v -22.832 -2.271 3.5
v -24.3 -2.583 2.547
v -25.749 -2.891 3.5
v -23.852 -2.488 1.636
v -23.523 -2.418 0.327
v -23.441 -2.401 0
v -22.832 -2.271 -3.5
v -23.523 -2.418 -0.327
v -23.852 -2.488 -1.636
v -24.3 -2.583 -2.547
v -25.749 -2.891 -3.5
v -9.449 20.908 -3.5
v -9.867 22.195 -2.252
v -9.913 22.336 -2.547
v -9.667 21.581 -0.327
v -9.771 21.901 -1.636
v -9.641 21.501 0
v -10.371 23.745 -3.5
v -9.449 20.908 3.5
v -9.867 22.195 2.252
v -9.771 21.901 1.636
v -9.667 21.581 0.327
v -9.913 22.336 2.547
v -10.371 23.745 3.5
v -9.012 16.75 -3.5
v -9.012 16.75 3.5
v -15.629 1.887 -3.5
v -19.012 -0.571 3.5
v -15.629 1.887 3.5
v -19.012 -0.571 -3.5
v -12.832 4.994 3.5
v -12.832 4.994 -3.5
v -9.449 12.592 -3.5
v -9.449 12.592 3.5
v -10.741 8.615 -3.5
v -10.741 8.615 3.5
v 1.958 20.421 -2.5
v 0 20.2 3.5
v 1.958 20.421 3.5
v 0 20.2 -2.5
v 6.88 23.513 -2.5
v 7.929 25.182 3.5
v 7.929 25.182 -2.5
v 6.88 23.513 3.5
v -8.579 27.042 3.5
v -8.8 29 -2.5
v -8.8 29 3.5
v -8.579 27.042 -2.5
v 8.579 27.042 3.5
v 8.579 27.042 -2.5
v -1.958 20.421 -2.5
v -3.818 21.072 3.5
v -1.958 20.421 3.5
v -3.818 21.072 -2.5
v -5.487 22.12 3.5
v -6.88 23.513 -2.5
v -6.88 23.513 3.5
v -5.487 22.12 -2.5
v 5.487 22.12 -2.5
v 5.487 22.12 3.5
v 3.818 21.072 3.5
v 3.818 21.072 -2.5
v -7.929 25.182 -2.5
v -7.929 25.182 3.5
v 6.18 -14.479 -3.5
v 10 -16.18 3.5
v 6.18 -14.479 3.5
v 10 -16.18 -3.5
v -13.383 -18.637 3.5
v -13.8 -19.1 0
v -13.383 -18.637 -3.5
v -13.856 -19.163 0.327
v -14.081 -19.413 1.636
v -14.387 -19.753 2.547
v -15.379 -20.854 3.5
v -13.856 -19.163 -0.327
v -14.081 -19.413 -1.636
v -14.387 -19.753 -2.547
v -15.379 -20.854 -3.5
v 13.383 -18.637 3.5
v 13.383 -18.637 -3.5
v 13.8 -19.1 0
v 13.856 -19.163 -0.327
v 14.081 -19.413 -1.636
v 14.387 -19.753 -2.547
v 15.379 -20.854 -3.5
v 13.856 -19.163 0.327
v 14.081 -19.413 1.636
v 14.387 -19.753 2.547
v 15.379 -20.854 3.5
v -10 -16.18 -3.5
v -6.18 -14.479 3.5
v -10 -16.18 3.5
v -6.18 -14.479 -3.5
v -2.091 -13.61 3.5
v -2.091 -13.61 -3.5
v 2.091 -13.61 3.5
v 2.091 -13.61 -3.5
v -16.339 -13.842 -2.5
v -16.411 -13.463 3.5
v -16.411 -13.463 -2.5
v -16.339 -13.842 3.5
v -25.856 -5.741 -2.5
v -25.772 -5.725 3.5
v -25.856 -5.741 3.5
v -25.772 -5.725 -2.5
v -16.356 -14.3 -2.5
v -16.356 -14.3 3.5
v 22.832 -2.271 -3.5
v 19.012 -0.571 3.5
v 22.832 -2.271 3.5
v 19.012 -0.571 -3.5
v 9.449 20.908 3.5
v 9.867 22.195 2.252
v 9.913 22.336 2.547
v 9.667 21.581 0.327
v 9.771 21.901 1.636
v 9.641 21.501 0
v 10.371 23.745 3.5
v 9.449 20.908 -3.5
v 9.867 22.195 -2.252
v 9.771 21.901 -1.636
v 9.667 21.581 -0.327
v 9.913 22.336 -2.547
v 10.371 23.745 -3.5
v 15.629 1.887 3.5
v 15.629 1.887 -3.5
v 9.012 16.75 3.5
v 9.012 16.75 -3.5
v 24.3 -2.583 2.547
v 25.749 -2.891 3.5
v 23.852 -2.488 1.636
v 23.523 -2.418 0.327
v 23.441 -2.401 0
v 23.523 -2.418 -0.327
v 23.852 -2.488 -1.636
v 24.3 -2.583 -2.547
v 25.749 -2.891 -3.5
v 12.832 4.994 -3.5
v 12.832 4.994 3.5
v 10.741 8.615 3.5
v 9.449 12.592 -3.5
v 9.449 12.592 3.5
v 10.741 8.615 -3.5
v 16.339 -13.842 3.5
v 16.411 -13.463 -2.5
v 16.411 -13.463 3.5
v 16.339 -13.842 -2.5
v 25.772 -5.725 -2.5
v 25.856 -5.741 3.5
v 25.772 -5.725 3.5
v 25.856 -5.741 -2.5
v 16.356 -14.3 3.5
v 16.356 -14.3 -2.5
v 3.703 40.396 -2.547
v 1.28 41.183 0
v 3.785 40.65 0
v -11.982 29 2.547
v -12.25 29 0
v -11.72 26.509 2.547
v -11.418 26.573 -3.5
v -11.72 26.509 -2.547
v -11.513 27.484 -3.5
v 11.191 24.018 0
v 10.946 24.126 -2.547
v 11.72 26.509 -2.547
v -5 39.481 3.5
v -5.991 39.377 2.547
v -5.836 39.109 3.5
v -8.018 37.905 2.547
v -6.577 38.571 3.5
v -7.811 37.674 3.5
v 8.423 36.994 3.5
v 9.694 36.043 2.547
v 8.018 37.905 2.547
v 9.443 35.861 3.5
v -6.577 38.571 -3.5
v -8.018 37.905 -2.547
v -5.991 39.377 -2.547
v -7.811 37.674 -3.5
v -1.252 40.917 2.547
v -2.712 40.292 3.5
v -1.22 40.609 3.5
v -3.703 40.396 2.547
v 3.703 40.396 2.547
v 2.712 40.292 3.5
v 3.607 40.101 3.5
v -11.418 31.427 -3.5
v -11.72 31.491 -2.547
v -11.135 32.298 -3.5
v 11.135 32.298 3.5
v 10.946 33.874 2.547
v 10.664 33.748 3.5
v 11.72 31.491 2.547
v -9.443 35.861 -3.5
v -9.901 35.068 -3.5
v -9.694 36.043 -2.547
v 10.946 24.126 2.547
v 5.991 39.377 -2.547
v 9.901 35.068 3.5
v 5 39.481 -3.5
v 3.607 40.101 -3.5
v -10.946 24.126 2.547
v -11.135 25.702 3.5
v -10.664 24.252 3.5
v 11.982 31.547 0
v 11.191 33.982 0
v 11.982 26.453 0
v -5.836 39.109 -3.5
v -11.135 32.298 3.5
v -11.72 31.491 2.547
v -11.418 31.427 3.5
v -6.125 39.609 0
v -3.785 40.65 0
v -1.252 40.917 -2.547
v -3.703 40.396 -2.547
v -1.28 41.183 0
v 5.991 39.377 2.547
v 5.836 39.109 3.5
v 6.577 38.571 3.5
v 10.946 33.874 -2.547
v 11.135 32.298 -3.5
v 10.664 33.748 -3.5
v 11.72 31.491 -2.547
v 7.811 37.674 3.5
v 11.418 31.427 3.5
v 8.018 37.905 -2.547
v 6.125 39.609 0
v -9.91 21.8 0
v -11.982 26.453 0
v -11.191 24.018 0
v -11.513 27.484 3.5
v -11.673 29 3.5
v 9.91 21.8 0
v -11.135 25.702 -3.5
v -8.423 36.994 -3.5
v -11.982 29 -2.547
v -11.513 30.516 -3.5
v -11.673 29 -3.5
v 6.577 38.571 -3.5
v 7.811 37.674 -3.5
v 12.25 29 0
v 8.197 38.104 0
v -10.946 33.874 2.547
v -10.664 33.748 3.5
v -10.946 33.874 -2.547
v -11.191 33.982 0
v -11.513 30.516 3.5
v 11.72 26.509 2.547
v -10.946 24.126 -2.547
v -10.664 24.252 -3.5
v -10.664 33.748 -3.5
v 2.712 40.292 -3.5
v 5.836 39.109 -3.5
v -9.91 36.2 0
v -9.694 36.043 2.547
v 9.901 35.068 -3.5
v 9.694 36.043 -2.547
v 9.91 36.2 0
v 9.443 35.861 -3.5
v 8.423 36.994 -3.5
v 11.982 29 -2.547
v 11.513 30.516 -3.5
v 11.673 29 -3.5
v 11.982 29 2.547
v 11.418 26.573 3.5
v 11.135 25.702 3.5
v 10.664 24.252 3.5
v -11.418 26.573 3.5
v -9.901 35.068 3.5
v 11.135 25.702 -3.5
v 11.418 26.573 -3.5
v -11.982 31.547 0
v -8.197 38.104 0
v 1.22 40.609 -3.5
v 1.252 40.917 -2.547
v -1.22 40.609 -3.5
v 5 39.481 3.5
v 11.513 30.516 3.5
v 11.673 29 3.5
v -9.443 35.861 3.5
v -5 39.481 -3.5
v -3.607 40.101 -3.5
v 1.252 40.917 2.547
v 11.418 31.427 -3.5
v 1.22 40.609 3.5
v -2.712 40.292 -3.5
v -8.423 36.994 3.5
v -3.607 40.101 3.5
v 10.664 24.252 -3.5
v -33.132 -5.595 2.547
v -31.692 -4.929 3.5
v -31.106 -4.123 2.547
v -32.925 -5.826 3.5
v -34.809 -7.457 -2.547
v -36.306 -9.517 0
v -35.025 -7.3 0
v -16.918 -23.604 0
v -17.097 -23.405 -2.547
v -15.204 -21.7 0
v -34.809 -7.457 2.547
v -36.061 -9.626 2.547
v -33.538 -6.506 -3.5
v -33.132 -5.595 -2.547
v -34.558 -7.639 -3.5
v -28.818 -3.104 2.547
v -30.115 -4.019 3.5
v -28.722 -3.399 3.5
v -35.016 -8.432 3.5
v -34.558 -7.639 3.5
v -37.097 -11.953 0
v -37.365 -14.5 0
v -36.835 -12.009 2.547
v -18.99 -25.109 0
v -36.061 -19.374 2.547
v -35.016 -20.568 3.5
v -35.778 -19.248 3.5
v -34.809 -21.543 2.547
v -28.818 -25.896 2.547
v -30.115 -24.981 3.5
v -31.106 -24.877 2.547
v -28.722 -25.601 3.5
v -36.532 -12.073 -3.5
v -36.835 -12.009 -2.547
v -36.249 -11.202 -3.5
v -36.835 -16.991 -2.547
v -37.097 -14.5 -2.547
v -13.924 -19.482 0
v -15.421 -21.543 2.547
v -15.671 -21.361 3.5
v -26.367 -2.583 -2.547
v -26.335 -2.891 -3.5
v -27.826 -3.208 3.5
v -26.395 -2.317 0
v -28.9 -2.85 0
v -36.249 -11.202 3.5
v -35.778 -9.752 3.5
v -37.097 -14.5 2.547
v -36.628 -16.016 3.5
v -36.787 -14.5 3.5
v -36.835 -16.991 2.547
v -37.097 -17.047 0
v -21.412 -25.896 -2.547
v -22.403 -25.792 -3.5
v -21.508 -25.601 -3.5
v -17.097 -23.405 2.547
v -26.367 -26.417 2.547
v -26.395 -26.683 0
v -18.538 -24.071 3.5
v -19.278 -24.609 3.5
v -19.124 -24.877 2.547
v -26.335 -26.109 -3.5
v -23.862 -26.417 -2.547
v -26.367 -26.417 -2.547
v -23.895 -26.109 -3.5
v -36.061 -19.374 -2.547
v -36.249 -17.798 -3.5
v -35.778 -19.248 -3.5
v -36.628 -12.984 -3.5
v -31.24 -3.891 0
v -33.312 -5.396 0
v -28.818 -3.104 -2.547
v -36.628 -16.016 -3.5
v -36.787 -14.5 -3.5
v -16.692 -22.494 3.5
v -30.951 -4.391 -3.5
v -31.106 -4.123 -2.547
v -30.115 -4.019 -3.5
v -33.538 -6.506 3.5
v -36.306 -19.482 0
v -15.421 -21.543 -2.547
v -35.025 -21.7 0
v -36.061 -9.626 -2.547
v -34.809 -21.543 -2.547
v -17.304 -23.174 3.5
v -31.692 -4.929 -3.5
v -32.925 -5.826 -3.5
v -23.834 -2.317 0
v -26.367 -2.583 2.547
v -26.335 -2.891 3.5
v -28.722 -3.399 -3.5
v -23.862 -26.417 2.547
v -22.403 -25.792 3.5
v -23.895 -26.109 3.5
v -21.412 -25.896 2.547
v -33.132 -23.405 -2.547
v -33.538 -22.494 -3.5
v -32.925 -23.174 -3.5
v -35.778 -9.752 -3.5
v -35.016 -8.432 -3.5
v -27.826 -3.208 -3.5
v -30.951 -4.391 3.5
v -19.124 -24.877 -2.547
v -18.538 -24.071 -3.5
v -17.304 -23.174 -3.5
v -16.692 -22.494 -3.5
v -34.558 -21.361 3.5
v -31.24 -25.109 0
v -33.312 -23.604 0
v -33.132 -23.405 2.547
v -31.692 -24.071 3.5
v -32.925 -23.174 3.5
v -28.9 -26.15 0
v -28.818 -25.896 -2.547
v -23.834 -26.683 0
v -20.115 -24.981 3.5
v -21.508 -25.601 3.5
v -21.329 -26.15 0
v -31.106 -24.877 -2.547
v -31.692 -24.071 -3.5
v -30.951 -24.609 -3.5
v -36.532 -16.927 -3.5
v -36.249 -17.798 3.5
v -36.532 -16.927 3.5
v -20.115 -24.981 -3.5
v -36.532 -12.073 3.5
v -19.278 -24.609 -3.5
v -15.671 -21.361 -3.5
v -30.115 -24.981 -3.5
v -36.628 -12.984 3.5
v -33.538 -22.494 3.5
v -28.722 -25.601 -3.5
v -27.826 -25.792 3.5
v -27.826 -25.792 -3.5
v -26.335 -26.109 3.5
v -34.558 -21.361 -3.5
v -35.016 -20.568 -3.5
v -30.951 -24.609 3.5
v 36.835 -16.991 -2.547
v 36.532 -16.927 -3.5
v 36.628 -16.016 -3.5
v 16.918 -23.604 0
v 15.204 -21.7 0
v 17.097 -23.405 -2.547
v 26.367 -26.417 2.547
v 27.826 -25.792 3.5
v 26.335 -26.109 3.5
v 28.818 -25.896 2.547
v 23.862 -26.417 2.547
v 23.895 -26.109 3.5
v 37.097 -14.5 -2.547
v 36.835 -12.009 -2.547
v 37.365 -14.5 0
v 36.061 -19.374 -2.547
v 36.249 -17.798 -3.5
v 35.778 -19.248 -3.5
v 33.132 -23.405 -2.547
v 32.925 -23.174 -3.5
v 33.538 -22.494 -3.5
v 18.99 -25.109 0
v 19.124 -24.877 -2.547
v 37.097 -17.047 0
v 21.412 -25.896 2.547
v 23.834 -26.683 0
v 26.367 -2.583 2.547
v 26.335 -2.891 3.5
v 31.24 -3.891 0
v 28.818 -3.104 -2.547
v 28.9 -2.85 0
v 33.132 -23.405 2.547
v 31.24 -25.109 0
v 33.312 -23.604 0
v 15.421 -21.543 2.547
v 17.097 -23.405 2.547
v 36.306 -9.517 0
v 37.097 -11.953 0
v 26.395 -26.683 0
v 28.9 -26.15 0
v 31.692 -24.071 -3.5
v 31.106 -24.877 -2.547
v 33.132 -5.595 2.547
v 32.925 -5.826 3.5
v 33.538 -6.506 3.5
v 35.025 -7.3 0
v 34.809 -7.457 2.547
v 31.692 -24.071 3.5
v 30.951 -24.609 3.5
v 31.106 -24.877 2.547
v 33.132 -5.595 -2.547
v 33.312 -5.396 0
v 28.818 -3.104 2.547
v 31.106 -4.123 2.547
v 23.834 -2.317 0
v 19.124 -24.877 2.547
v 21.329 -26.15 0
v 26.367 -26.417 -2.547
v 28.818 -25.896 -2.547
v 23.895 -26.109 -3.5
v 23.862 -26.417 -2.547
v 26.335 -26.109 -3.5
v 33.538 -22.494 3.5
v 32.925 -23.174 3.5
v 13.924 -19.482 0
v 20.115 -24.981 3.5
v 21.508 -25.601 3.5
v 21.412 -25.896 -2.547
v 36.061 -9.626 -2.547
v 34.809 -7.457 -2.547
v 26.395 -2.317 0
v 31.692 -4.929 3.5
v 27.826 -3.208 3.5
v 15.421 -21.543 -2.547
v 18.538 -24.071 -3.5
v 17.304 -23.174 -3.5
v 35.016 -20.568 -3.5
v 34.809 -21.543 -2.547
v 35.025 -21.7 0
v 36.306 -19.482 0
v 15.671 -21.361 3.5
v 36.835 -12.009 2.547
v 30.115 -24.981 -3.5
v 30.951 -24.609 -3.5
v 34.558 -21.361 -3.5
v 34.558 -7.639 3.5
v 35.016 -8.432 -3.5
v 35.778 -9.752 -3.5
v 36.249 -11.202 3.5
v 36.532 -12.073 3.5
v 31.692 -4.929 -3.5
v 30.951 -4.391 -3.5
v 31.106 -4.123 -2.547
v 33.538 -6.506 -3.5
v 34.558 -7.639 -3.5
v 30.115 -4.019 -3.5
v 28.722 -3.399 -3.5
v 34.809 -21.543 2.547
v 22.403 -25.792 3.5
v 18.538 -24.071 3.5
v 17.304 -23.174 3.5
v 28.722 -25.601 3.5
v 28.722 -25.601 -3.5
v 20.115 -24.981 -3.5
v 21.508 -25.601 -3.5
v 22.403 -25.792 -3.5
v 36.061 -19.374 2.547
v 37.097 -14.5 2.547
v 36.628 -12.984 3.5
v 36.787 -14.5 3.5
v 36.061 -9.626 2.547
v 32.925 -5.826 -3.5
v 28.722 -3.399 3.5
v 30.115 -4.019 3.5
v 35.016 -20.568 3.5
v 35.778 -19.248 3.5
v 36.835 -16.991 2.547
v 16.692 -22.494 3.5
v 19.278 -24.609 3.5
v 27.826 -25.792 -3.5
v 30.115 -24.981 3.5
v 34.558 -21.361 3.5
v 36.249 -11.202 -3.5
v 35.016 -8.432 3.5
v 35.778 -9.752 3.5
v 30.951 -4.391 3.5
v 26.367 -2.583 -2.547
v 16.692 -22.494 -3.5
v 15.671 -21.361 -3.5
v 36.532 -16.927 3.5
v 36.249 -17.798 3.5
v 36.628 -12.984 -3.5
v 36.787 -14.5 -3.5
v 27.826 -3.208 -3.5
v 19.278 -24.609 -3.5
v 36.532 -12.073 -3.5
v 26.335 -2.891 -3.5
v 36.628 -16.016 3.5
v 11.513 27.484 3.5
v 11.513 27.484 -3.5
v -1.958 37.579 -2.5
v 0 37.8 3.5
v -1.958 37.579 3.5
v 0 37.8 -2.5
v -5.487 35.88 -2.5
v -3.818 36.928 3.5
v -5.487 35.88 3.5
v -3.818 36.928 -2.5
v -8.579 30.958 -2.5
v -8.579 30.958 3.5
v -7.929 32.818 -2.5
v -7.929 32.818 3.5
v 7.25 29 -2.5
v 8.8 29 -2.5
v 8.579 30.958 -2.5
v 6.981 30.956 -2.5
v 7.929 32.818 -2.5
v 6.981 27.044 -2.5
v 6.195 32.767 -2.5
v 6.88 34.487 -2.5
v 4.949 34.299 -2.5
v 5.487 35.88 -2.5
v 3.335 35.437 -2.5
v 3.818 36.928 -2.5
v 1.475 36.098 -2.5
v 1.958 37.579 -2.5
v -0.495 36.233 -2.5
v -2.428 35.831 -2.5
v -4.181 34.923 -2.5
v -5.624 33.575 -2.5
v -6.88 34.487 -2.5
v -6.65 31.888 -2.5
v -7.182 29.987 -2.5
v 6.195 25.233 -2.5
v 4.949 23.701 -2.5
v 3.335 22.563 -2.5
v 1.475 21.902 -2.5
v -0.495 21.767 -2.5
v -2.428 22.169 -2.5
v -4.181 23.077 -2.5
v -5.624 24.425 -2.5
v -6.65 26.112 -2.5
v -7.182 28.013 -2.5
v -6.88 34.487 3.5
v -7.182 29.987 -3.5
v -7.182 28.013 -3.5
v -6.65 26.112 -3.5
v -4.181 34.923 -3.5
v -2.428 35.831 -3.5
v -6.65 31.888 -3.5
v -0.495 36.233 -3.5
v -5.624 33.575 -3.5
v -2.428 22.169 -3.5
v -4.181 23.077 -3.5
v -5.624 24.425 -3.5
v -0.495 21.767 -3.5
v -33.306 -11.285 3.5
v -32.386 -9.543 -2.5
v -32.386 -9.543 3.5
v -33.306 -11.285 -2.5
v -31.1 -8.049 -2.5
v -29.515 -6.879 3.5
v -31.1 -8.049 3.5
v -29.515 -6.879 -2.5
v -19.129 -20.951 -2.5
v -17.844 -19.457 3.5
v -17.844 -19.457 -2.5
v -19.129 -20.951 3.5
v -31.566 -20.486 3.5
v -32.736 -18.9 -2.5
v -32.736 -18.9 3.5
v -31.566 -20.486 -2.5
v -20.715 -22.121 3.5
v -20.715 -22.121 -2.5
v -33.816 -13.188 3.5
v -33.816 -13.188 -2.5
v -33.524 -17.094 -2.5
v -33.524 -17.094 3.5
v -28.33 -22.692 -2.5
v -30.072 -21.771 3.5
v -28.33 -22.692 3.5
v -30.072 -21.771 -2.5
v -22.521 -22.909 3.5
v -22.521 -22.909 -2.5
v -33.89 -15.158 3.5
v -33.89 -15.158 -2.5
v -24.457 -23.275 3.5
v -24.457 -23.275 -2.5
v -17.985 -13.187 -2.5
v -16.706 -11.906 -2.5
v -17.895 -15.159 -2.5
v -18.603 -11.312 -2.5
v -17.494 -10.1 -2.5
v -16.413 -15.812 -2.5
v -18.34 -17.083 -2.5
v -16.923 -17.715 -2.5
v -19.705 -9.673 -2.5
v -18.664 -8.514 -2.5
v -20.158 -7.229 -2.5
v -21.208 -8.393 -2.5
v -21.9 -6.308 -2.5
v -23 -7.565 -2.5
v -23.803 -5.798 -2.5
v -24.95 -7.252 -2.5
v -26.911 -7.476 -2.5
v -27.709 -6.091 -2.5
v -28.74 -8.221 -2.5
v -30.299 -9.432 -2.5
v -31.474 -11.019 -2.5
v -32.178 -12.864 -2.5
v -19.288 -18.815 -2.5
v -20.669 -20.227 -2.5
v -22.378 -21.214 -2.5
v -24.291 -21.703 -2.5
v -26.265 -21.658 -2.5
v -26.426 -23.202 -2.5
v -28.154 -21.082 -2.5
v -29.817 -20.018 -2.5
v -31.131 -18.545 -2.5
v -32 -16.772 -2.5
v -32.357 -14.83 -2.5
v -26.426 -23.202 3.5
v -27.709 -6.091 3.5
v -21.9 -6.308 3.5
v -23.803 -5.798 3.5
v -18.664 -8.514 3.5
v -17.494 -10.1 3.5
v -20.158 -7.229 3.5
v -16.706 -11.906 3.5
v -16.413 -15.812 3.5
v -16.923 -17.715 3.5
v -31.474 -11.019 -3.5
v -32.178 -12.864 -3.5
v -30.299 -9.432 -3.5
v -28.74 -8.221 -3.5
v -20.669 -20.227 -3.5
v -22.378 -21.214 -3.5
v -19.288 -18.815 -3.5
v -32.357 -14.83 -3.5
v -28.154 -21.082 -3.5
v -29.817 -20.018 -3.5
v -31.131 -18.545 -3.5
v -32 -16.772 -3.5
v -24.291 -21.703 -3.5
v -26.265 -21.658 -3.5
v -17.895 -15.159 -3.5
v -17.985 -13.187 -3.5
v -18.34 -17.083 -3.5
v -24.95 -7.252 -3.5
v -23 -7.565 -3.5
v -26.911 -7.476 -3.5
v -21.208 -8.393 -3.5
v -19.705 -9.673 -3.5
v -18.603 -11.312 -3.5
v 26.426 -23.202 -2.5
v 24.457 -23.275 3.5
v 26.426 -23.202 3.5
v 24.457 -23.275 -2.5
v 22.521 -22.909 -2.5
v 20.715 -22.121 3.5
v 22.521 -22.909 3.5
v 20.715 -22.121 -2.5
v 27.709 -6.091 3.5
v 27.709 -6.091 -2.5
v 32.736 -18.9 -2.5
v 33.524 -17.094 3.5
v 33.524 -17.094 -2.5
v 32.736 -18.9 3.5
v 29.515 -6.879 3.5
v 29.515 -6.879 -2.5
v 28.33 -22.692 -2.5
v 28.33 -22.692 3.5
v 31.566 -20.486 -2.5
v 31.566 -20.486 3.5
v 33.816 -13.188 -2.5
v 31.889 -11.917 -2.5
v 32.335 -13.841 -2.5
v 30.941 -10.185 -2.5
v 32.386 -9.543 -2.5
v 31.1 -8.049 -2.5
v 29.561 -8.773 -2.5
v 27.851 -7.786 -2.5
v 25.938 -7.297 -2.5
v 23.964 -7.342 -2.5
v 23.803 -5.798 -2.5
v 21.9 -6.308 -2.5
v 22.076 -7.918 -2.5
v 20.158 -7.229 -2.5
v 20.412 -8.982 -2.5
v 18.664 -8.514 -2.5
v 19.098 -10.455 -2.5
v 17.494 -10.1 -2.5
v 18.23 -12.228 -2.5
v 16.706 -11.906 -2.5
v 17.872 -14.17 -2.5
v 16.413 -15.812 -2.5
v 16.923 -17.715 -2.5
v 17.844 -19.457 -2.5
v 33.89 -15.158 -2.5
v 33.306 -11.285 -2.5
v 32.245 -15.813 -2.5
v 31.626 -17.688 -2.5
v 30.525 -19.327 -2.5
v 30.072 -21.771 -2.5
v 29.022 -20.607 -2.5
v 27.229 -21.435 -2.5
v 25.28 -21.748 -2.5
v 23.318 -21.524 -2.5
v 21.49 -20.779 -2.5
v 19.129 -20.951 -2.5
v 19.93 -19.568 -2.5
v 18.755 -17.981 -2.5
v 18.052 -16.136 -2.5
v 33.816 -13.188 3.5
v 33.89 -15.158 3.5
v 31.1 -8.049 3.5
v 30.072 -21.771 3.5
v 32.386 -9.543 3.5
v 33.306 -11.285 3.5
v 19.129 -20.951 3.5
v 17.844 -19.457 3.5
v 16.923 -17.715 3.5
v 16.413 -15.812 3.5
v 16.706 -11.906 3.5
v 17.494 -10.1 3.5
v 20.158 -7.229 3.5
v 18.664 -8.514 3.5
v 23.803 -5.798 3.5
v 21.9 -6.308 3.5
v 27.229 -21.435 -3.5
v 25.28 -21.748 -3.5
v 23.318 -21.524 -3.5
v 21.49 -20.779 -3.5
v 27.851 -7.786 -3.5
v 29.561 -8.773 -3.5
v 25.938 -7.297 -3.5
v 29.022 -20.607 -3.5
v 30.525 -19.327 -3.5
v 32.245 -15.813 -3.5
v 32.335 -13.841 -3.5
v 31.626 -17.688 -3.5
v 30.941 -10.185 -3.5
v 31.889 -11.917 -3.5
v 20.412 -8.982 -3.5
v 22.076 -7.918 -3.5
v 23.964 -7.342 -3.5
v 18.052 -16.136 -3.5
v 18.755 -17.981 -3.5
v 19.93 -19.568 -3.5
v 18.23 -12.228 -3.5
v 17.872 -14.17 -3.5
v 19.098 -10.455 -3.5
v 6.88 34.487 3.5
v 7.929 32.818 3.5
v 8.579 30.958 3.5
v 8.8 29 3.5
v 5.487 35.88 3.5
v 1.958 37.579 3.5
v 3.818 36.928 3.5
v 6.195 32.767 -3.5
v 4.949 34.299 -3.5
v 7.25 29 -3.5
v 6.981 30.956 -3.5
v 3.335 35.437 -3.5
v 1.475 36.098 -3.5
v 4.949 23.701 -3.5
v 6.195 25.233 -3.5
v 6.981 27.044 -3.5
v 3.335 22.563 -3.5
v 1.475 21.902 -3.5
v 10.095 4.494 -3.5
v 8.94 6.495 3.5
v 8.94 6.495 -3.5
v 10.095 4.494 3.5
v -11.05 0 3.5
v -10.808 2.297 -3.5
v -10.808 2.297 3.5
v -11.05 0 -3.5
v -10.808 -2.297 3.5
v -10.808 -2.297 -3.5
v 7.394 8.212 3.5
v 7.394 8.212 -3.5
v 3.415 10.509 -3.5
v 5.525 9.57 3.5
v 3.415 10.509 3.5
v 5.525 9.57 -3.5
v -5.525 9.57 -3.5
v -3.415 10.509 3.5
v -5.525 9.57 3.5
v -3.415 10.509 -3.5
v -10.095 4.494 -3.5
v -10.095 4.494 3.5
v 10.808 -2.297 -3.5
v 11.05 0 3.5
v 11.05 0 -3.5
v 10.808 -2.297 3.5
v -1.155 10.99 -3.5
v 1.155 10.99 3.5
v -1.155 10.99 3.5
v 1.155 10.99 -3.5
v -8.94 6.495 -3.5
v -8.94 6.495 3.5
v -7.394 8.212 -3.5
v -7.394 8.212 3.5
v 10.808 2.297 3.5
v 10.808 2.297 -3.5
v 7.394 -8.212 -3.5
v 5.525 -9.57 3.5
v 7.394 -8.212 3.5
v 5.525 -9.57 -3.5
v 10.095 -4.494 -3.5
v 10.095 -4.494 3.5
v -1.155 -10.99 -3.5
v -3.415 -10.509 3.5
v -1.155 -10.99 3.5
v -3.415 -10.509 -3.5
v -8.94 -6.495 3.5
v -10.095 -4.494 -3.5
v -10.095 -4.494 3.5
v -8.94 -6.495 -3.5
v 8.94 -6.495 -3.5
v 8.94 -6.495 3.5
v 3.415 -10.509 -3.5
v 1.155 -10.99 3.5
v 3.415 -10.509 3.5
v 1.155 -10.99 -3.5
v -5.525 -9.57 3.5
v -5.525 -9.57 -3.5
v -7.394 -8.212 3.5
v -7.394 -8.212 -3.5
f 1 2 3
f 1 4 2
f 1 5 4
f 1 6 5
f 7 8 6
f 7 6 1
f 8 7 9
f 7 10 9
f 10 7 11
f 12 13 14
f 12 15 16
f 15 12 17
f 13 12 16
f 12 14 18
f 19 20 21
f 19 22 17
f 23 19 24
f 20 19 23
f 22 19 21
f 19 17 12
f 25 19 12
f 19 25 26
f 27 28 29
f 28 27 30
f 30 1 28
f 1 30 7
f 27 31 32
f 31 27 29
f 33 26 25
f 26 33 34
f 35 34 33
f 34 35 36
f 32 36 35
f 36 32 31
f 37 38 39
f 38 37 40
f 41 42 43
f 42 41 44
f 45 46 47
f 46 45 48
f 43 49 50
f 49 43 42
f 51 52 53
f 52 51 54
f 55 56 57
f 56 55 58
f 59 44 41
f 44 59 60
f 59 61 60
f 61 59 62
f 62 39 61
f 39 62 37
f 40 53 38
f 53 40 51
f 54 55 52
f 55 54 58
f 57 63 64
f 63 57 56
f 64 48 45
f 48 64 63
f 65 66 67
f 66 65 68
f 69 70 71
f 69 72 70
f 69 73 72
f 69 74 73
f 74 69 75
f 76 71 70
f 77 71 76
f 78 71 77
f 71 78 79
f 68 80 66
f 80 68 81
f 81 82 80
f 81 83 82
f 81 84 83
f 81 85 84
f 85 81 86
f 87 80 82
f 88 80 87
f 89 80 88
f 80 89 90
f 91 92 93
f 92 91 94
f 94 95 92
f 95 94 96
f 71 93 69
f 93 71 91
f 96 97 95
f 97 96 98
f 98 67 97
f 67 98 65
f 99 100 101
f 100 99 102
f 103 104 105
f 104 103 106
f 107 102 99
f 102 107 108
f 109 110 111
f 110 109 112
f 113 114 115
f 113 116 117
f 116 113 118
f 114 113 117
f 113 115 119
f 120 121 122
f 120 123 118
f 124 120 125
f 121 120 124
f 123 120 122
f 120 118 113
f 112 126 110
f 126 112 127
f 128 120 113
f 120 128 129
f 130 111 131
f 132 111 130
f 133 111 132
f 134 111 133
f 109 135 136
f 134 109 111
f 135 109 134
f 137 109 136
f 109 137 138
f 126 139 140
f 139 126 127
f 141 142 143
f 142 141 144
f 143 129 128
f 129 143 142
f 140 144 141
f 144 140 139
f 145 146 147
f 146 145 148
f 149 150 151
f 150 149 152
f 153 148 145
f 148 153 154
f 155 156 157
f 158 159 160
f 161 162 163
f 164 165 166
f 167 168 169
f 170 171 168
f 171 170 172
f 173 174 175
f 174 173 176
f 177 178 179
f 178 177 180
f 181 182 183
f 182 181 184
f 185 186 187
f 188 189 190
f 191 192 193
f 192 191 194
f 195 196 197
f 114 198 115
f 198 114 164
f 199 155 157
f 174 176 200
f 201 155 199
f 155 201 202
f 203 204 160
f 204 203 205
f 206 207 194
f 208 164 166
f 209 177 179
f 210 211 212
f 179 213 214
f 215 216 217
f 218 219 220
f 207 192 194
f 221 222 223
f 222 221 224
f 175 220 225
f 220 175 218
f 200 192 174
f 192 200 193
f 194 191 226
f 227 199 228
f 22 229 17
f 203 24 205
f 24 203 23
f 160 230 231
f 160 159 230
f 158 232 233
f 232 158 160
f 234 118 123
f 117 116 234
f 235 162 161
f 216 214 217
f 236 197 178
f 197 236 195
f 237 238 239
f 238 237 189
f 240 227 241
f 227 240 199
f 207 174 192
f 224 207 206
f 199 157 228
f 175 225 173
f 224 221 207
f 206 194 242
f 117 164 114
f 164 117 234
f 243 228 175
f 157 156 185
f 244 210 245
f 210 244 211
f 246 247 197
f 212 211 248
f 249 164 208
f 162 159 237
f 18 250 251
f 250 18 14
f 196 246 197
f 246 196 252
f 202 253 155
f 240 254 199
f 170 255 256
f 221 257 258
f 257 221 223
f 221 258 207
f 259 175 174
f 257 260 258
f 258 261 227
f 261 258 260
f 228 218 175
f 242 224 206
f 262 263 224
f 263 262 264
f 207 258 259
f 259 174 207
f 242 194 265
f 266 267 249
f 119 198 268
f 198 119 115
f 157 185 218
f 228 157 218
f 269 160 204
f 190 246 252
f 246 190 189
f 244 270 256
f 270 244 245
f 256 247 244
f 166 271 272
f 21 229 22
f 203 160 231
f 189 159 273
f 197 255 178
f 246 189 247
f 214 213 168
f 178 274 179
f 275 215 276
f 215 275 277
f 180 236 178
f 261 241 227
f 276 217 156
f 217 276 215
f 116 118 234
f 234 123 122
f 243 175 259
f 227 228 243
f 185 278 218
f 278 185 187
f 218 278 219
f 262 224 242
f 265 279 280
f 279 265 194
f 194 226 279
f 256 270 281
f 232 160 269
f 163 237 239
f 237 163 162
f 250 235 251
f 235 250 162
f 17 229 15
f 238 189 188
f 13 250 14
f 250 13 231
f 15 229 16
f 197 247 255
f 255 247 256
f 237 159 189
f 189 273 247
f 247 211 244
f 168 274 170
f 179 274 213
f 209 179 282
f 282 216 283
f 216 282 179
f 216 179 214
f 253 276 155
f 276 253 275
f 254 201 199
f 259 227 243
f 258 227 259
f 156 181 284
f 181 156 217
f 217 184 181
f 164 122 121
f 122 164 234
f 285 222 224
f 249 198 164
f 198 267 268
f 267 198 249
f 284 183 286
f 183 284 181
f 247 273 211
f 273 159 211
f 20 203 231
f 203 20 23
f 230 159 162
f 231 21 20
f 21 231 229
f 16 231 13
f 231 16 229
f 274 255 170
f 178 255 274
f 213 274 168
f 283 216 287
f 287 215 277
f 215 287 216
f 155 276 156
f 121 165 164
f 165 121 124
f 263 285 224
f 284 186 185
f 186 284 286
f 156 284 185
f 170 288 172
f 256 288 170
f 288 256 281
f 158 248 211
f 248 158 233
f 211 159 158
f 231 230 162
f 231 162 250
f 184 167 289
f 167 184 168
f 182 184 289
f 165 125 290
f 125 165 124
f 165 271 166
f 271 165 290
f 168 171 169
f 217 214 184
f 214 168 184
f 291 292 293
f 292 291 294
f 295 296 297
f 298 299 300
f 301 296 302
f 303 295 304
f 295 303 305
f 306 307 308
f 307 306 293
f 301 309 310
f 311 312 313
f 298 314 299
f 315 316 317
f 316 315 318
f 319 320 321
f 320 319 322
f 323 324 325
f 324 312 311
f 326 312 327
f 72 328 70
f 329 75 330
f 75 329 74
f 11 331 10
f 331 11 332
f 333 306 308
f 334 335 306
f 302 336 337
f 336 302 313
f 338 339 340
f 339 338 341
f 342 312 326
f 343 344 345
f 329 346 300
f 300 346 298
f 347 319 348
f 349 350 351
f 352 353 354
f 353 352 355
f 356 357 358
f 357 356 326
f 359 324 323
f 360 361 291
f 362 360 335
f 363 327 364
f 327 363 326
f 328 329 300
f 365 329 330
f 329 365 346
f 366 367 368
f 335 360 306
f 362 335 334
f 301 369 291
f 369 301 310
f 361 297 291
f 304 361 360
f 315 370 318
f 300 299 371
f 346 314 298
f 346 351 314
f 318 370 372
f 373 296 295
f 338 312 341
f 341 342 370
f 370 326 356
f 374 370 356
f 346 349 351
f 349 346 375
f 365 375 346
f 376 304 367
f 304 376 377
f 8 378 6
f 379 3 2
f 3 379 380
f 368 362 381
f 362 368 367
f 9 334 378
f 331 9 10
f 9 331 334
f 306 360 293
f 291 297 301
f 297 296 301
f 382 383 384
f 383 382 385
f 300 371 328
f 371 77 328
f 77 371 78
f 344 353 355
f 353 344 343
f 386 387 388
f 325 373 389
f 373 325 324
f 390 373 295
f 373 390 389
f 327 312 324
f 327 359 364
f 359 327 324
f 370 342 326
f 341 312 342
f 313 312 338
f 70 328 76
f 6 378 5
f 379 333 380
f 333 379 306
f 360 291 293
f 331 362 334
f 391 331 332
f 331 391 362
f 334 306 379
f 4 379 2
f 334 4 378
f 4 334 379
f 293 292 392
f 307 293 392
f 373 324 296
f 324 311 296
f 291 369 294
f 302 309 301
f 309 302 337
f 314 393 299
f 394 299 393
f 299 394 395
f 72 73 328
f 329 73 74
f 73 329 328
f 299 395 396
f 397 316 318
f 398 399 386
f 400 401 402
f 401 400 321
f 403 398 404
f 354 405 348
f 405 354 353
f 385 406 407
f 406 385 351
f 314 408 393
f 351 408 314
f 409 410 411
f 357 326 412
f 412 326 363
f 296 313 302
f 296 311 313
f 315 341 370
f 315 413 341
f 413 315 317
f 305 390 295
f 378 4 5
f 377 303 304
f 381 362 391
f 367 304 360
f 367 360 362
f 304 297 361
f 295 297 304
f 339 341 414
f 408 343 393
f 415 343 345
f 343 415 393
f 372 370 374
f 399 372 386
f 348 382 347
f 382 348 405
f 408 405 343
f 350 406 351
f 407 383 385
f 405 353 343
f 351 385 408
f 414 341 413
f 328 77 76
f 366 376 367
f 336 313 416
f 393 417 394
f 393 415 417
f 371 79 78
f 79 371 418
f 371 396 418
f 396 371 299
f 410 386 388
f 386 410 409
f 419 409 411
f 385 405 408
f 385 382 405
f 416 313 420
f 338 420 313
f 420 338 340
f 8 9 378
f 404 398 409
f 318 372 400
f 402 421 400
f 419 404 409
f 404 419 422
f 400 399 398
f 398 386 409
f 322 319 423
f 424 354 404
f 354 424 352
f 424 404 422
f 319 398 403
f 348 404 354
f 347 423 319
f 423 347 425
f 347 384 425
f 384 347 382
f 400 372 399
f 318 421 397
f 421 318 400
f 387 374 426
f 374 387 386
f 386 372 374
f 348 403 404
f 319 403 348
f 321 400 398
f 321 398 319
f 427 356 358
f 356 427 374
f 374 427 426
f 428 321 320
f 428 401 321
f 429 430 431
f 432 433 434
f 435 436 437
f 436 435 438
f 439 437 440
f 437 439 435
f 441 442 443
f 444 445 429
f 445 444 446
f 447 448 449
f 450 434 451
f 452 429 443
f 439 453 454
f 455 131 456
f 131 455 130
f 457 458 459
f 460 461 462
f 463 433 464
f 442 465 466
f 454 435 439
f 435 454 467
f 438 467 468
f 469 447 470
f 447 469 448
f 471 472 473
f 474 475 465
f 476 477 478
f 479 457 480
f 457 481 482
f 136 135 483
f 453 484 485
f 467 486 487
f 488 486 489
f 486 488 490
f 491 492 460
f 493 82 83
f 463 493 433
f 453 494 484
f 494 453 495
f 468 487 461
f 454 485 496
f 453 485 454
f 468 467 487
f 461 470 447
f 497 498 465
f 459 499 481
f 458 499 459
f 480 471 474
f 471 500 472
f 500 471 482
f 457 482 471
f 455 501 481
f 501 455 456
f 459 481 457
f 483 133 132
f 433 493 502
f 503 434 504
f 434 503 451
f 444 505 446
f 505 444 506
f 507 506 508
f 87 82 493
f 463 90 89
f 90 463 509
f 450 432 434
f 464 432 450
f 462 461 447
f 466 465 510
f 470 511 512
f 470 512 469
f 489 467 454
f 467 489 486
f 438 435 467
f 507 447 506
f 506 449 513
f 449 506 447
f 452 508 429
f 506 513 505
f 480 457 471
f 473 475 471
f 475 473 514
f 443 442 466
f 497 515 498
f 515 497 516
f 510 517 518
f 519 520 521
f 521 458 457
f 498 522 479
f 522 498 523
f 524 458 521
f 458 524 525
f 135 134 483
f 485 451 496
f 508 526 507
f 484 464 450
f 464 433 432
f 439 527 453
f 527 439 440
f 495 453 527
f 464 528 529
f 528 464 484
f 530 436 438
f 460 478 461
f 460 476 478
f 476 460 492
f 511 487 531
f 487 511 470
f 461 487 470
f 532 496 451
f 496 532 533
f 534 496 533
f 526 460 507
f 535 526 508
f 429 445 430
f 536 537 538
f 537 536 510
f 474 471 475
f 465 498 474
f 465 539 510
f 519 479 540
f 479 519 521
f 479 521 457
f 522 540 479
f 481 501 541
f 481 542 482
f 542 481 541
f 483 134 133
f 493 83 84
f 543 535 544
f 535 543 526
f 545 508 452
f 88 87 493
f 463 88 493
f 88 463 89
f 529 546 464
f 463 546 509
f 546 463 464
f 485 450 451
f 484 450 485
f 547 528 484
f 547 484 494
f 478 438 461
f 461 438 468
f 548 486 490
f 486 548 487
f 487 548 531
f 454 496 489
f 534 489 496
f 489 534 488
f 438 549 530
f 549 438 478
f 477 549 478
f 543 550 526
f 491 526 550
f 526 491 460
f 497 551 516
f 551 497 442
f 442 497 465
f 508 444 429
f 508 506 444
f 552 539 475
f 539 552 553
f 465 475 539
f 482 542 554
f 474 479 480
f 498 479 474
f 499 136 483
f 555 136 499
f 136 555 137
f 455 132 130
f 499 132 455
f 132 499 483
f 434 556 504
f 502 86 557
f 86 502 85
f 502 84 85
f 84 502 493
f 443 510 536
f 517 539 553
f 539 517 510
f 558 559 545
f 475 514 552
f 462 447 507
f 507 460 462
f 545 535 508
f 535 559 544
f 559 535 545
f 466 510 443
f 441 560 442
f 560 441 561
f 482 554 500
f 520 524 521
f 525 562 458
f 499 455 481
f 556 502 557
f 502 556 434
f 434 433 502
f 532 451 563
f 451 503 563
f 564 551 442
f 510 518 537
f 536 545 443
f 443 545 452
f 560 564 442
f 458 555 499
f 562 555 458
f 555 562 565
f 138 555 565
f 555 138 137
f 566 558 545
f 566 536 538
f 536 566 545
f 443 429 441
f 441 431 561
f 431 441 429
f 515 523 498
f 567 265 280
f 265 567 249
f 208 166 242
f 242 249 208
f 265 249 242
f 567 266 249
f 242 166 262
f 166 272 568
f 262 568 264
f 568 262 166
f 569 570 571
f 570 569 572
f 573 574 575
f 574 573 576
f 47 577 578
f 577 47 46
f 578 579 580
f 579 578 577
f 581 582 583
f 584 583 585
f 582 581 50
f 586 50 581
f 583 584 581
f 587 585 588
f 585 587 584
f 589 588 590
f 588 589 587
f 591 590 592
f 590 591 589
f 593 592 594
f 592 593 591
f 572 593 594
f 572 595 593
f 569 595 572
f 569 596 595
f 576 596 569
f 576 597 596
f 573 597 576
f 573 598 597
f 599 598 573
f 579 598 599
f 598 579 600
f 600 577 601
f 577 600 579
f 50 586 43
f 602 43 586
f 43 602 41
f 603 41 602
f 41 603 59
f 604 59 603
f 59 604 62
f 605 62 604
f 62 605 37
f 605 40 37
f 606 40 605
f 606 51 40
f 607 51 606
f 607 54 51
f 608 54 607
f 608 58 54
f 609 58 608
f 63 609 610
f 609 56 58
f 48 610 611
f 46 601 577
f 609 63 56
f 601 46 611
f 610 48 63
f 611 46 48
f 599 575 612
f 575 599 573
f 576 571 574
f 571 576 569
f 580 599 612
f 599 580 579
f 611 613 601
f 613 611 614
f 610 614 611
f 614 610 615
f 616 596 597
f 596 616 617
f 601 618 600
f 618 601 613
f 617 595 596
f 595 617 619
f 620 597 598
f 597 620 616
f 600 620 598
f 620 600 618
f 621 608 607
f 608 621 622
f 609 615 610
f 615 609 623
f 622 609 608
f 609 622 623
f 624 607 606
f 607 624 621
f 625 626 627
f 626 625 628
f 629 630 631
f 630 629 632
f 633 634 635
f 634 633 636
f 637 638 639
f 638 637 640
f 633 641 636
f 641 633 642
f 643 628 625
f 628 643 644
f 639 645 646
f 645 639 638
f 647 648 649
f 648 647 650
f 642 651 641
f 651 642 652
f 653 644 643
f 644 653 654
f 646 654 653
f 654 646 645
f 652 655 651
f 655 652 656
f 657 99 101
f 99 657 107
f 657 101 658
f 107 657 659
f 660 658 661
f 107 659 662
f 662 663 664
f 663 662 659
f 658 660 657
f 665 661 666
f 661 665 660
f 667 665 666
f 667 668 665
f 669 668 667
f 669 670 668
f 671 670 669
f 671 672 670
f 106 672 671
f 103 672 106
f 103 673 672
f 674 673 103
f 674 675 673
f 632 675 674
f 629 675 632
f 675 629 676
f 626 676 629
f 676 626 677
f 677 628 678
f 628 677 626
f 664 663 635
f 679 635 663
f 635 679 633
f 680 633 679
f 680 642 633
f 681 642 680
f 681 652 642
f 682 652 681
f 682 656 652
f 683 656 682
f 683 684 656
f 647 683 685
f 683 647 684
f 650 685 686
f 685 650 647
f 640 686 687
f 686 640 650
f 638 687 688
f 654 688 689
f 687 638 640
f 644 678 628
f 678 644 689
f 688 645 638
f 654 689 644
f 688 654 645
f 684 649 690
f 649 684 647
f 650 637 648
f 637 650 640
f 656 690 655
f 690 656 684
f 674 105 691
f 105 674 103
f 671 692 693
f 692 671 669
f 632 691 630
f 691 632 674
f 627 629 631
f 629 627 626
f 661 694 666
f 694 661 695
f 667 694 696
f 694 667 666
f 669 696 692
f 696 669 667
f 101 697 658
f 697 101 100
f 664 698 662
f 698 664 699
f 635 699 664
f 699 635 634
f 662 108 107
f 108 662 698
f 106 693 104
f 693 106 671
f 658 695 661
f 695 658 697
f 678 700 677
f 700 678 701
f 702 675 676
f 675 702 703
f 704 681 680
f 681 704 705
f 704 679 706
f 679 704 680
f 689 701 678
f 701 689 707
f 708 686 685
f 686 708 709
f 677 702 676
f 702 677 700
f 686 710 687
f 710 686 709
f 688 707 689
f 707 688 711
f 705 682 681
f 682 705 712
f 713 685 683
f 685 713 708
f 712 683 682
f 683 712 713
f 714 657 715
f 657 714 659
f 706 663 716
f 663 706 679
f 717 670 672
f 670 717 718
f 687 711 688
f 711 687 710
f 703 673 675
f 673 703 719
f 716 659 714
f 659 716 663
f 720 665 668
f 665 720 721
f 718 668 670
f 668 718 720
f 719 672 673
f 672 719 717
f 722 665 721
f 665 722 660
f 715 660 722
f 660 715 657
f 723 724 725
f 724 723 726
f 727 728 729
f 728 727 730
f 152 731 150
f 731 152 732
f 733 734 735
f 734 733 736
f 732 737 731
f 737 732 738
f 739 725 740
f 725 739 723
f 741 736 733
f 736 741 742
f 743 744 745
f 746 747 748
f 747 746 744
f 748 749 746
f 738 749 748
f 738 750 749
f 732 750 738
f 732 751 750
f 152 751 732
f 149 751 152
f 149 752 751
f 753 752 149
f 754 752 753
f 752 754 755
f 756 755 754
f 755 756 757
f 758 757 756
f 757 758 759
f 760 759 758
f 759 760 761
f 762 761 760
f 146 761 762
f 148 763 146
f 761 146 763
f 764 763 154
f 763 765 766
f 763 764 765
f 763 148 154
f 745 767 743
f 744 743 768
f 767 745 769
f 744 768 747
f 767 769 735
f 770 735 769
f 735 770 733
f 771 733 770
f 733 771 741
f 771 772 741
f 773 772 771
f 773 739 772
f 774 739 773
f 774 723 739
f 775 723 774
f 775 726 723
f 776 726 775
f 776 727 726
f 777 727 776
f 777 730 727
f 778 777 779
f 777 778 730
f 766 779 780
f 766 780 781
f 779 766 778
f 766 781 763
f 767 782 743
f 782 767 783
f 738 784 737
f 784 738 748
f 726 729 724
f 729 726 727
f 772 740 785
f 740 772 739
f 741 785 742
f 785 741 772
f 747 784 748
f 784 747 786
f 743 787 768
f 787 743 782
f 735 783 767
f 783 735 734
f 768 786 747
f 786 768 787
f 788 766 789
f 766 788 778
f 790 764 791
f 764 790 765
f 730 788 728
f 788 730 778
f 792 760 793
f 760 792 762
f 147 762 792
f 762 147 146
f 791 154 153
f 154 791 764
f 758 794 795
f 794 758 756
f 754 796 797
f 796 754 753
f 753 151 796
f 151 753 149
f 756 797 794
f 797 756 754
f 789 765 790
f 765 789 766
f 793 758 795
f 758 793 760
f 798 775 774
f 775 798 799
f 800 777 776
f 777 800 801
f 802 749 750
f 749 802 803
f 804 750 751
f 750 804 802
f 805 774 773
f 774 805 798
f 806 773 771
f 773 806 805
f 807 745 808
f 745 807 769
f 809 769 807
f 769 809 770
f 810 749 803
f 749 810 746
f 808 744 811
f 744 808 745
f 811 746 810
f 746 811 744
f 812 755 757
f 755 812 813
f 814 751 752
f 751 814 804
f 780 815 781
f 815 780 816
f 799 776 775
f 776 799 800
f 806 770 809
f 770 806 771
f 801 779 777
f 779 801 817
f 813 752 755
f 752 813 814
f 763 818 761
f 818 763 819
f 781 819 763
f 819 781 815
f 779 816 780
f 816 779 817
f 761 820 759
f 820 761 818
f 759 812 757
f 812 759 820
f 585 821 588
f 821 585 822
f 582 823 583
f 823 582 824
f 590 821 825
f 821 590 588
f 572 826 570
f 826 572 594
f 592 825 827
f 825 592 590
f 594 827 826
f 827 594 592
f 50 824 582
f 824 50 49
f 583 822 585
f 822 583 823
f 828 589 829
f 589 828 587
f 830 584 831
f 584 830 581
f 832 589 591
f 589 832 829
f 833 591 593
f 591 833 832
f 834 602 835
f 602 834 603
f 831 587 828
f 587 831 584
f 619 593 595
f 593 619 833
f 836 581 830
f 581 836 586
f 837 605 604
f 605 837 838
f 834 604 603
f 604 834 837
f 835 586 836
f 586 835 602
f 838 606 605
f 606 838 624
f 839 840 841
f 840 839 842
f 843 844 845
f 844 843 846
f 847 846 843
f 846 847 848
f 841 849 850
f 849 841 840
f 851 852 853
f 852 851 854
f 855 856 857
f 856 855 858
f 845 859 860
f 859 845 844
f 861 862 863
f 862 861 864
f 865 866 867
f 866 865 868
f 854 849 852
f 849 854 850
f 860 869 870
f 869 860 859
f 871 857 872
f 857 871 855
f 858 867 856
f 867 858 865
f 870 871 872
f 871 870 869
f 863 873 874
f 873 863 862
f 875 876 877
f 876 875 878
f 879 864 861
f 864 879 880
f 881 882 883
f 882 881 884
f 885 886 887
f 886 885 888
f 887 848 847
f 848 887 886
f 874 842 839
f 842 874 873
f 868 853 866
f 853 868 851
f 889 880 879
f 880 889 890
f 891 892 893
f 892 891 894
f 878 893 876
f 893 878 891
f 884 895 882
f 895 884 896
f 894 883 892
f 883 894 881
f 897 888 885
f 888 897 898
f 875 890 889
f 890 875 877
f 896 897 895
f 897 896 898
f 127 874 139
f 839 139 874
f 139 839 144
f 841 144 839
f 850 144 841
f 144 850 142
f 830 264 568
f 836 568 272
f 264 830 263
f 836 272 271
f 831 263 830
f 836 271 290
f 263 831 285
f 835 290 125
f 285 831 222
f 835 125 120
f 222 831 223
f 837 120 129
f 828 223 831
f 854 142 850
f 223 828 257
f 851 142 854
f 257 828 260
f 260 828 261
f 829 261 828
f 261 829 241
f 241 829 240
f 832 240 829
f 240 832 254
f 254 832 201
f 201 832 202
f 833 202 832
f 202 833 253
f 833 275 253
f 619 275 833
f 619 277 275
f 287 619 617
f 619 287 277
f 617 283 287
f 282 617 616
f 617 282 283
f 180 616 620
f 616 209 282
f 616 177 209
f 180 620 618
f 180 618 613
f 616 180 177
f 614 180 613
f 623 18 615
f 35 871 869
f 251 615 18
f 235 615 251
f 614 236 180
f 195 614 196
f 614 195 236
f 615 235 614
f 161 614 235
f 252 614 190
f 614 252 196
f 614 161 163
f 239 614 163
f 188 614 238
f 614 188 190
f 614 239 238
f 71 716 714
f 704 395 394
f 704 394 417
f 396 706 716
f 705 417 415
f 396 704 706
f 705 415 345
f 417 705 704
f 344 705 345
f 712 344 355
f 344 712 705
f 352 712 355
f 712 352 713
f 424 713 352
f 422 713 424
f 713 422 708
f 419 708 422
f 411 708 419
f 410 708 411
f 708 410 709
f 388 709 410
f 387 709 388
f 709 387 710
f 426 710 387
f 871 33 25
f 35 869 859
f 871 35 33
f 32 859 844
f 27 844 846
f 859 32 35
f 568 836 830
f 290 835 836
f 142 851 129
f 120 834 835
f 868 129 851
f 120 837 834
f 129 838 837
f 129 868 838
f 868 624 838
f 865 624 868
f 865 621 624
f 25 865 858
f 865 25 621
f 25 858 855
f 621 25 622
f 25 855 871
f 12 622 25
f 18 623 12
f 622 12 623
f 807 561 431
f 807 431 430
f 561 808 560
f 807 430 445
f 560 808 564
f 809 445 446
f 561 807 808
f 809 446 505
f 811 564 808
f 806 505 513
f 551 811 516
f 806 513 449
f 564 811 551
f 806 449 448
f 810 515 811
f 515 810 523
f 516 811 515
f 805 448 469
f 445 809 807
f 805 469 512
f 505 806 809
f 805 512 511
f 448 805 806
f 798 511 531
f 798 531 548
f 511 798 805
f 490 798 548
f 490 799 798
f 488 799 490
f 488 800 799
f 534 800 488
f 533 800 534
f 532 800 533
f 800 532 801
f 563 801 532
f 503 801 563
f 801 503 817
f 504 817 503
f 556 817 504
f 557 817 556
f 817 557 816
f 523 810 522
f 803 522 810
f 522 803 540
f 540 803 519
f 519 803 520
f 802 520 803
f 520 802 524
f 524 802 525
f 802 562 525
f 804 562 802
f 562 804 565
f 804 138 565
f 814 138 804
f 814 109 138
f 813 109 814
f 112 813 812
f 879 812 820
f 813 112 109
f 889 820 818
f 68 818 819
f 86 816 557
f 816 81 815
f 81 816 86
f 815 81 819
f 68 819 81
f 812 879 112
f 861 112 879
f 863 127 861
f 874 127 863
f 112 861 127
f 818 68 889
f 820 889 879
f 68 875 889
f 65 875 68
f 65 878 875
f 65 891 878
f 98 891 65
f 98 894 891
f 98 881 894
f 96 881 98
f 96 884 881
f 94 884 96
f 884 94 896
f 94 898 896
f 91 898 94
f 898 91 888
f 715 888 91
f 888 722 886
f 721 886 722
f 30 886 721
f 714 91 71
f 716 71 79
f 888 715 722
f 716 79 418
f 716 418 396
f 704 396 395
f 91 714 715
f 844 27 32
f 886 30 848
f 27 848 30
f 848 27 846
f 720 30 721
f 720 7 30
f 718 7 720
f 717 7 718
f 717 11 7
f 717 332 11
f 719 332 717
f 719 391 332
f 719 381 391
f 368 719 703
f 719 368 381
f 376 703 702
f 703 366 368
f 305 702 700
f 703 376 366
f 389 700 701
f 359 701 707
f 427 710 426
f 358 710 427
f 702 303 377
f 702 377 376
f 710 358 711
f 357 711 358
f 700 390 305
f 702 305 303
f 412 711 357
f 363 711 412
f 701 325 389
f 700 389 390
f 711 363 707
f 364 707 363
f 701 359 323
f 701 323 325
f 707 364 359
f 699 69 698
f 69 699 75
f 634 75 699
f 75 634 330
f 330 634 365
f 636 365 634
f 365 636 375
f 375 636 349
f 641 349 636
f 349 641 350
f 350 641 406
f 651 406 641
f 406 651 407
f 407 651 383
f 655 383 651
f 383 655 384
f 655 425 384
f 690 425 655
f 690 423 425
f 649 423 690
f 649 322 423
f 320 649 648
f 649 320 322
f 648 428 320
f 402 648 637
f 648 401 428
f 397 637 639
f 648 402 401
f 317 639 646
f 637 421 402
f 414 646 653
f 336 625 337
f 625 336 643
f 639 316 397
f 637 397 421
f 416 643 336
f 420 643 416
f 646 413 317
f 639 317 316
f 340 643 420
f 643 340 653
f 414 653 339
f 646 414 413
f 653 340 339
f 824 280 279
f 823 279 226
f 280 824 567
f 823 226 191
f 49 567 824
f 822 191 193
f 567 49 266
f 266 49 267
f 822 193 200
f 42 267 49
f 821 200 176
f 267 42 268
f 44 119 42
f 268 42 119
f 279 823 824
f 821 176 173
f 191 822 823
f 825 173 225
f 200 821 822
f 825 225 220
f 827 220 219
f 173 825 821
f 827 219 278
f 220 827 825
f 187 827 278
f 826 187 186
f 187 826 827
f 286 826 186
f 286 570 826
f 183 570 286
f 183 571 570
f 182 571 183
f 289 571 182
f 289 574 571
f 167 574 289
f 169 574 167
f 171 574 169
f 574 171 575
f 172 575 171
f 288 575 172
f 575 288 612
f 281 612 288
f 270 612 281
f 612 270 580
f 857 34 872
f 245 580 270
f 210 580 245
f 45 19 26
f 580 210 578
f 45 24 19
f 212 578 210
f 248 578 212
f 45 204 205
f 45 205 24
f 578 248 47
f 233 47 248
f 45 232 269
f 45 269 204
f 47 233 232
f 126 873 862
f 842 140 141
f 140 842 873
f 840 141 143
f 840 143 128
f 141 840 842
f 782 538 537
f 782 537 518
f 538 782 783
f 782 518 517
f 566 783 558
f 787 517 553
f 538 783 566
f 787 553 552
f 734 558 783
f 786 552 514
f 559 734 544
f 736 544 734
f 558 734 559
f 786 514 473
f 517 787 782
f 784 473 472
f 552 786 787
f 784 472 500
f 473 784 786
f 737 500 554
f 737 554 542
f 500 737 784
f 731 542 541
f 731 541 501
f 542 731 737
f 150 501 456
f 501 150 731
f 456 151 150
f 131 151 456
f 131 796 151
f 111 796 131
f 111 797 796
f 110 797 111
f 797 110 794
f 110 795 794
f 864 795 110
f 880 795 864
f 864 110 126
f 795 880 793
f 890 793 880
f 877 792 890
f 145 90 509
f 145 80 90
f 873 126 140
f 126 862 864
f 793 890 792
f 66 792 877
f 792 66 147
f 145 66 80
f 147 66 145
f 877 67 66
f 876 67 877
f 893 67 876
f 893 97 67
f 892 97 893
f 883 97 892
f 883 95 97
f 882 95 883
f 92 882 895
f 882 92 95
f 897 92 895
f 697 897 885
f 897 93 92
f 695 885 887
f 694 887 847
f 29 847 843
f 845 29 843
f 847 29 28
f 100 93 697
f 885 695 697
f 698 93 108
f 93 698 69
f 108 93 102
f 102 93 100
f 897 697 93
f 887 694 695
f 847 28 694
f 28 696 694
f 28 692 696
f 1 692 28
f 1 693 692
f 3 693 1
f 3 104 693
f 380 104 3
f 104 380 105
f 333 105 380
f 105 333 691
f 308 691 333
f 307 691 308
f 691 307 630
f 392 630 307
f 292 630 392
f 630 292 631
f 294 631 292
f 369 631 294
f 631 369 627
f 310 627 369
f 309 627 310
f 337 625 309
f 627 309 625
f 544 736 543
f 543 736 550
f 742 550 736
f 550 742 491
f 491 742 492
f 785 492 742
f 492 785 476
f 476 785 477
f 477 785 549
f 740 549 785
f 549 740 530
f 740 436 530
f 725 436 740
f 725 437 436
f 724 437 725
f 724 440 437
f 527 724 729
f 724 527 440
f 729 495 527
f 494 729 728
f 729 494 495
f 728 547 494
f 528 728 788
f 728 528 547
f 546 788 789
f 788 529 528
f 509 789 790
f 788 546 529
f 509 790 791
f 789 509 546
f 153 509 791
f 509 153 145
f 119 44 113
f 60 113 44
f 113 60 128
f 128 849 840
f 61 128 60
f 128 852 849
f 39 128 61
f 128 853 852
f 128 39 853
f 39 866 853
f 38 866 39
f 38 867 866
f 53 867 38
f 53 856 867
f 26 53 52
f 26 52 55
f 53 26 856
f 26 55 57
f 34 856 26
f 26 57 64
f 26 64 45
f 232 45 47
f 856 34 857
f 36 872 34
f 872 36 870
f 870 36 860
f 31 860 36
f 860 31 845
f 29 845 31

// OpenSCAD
/**
 *
 * Fidget Spinner
 * 
 * created by Diego Viejo 
 * 
 * This spinner uses a 608 bearing in the center. For outer weights I'm using fridge magnets 17.5mm. diam, 5mm. height
 */

weightDiam = 17.5;
weightHeight = 5;

b608Diam = 22;
b608Height = 7;

nBlades = 3;

thick = 3.5;

bladeLength = 29;


difference()
{
union()
{
    difference()
    {
        translate([0, 0, -10/2])
            cylinder(d=bladeLength*2, h=10);
    
    
        translate([0, 0, -20]) cylinder(d=b608Diam+0.1, h=40);
    

        for(i=[0:nBlades])
        {
            //cuts
            hull()
            {
                rotate(i*360/nBlades + 180/nBlades)
                    translate([0, 36.5-nBlades, -20]) cylinder(d=360/(nBlades*nBlades), h=40);
                rotate(i*360/nBlades + 180/nBlades)
                    translate([0, 240, -20]) cylinder(d=300, h=40);
            }
        
            //wheight socket
            rotate(i*360/nBlades)
                translate([0, bladeLength, -20]) cylinder(d=weightDiam+0.1, h=40);
        }
    }

    difference()
    {
        for(i=[0:nBlades])
        {
            rotate(i*360/nBlades)
                translate([0, bladeLength, 0]) sphere(d=weightDiam+thick*2);
        }
    
        for(i=[0:nBlades])
        {
            rotate(i*360/nBlades)
            {
                translate([0, bladeLength, -7/2+1]) cylinder(d=weightDiam+0.1, h=40);
                translate([0, bladeLength, -7/2-1]) cylinder(d=weightDiam-3, h=40);
            }
        }
    }
}
    translate([-100, -100, -20-7/2]) cube([200, 200, 20]);
    translate([-100, -100, 7/2]) cube([200, 200, 20]);

}
